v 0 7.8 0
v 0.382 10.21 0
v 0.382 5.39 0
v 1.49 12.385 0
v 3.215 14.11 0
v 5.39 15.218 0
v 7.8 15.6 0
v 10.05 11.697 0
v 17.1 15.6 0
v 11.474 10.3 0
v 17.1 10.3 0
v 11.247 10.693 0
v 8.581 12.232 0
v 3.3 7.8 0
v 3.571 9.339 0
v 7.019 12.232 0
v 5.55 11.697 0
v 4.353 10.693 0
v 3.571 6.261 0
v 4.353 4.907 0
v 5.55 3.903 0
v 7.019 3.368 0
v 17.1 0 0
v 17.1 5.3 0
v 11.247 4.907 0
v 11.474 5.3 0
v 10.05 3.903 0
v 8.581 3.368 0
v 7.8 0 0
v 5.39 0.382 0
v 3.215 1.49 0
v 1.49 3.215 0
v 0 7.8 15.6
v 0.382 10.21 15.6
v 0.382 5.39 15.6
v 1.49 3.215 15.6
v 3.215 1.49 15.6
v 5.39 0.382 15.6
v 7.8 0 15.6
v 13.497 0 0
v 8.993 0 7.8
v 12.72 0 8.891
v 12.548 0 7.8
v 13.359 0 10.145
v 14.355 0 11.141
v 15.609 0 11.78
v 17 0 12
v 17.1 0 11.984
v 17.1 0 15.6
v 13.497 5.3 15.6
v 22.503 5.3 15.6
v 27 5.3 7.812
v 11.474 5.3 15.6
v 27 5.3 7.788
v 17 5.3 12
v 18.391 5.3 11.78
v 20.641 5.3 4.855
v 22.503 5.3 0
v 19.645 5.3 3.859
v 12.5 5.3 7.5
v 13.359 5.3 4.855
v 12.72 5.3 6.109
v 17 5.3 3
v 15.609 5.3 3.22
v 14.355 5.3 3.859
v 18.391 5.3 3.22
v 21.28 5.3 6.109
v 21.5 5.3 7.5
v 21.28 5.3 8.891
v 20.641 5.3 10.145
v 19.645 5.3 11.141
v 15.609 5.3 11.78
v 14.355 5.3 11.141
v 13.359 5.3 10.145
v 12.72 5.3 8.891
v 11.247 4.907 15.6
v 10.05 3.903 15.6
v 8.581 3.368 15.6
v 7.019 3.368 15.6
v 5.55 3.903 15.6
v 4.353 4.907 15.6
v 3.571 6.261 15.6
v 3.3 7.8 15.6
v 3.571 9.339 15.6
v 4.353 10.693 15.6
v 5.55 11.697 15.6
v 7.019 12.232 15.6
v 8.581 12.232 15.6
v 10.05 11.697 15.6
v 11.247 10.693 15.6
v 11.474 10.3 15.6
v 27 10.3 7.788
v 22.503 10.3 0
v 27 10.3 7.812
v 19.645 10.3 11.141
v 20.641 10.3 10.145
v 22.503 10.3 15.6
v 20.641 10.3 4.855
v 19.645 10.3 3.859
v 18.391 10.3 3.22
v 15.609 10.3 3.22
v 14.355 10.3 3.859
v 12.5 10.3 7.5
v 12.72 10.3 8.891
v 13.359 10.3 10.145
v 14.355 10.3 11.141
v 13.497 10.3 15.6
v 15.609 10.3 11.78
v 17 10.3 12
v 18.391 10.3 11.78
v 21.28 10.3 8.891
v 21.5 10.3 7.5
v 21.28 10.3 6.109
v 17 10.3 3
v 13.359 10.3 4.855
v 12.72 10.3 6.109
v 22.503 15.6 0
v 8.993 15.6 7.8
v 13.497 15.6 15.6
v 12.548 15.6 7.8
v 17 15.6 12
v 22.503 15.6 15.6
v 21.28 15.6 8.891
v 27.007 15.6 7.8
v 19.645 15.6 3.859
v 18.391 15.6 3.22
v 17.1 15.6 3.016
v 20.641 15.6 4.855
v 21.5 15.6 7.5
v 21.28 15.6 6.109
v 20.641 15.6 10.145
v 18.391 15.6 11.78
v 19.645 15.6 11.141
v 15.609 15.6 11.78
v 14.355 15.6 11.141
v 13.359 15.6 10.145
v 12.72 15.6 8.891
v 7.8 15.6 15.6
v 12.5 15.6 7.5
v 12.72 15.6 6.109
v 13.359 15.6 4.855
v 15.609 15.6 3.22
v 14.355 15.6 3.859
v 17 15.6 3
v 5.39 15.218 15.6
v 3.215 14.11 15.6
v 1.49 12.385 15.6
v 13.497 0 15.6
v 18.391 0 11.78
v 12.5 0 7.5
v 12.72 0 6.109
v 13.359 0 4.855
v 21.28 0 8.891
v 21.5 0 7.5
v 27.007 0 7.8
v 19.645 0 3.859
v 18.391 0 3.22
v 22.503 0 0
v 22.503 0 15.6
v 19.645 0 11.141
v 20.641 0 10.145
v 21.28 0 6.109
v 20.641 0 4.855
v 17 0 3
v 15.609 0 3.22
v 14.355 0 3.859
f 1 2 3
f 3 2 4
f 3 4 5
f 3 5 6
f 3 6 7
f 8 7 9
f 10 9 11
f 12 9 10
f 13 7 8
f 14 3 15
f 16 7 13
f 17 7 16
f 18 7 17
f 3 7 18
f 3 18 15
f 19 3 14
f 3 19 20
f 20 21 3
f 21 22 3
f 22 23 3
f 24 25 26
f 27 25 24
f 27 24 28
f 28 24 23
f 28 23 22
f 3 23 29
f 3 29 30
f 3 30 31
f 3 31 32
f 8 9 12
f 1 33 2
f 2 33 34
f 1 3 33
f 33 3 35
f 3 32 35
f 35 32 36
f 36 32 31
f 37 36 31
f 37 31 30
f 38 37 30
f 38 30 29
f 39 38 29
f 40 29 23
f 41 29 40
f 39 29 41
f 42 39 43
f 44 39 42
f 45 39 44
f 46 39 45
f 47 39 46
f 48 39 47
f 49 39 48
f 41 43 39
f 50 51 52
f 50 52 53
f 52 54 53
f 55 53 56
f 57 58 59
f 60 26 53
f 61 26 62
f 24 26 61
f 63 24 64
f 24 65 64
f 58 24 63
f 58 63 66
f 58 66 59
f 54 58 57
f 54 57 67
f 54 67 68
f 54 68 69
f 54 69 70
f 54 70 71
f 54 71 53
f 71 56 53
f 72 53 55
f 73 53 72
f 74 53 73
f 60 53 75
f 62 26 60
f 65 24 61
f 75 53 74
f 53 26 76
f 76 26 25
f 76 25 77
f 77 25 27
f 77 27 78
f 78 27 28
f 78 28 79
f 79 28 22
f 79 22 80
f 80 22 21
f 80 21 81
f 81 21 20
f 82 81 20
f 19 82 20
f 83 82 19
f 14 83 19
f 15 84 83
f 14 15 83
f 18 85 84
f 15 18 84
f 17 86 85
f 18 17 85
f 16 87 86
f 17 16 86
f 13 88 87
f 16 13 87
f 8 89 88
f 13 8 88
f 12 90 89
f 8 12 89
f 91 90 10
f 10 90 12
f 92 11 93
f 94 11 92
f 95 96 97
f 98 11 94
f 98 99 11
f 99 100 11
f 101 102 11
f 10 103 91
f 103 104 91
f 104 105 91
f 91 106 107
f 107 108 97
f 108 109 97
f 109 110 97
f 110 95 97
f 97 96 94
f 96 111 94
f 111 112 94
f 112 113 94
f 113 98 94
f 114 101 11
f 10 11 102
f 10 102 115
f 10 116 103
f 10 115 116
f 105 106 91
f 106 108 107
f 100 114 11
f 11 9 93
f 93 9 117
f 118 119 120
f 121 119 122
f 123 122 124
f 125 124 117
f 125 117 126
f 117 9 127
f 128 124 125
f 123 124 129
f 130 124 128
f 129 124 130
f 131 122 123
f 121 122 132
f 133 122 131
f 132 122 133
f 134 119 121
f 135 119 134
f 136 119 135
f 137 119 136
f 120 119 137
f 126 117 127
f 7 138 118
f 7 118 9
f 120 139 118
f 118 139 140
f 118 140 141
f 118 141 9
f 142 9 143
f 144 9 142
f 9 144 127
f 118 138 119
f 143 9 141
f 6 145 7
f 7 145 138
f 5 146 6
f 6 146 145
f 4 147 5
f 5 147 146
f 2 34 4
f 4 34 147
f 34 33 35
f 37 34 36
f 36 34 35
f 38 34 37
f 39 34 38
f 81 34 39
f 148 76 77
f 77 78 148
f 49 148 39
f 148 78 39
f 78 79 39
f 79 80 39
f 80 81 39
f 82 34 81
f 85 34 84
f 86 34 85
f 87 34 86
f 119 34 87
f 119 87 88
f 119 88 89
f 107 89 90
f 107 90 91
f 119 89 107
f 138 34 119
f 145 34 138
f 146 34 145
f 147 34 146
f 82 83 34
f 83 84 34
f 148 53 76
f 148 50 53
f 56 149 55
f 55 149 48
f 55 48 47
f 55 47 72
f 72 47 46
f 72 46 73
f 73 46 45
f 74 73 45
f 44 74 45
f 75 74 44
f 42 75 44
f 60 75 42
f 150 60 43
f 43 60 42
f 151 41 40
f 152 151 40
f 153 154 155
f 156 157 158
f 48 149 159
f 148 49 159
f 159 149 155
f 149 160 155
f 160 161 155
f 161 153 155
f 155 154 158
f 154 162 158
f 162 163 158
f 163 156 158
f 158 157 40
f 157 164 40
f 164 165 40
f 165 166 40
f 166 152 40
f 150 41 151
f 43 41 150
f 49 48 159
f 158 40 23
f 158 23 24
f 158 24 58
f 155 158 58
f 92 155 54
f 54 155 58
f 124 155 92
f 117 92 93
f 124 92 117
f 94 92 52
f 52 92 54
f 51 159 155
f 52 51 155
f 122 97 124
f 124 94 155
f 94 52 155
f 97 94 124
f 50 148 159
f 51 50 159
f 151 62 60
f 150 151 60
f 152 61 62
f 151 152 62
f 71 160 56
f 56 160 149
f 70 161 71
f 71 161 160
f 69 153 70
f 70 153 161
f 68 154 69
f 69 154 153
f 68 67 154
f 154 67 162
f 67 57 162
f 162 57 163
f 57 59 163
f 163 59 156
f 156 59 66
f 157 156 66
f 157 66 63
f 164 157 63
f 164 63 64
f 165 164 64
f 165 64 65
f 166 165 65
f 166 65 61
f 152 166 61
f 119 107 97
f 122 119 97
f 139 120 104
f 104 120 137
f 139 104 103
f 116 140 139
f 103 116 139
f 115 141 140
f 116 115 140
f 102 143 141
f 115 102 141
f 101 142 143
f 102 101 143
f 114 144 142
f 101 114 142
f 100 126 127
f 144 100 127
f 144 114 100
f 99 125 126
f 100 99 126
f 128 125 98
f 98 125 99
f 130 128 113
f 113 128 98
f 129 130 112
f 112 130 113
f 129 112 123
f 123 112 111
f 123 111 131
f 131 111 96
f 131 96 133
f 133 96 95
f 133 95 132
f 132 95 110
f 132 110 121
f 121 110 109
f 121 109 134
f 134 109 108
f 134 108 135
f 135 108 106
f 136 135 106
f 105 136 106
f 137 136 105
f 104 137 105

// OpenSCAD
// file: functions.scad
// PRUSA Mendel  
// Functions used in many files
// GNU GPL v2
// Josef Průša
// josefprusa@me.com
// prusadjs.cz
// http://www.reprap.org/wiki/Prusa_Mendel
// http://github.com/prusajr/PrusaMendel

module nut(d,h,horizontal=true){
cornerdiameter =  (d / 2) / cos (180 / 6);
cylinder(h = h, r = cornerdiameter, $fn = 6);
if(horizontal){
for(i = [1:6]){
	rotate([0,0,60*i]) translate([-cornerdiameter-0.2,0,0]) rotate([0,0,-45]) cube(size = [2,2,h]);
}}
}

// By nophead
module polyhole(d,h) {
    n = max(round(2 * d),3);
    rotate([0,0,180])
        cylinder(h = h, r = (d / 2) / cos (180 / n), $fn = n);
}




module roundcorner(diameter){
	difference(){
		cube(size = [diameter,diameter,99], center = false);
		translate(v = [diameter, diameter, 0]) cylinder(h = 100, r=diameter, center=true);
	}
}
// file: metric.scad
// PRUSA Mendel  
// Default metric sizes
// GNU GPL v3
// Josef Průša
// josefprusa@me.com
// prusadjs.cz
// http://www.reprap.org/wiki/Prusa_Mendel
// http://github.com/prusajr/PrusaMendel

// DONT CHANGE THIS FILE! ALTER VALUES IN CONFIGURATION.SCAD INSTEAD

// RODS

threaded_rod_diameter = 8.7;
threaded_rod_diameter_horizontal = 8.7;
smooth_bar_diameter = 8;
smooth_bar_diameter_horizontal = 8.5;

// Nuts and bolts

m8_diameter = 9;
m8_nut_diameter = 14.1;

m4_diameter = 4.5;
m4_nut_diameter = 9;

m3_diameter = 3.6;
m3_nut_diameter = 5.5;
m3_nut_diameter_horizontal = 6.1;

// Bushing holder

bushing_core_diameter = smooth_bar_diameter;
bushing_material_thickness = 1;

// Motors

motor_shaft = 5.5;
// file: configuration.scad
// PRUSA Mendel  
// Configuration file
// GNU GPL v3
// Josef Průša
// josefprusa@me.com
// prusadjs.cz
// http://www.reprap.org/wiki/Prusa_Mendel
// http://github.com/prusajr/PrusaMendel

// PLEASE SELECT ONE OF THE CONFIGURATIONS BELOW
// BY UN-COMMENTING IT

// Uncomment for metric settings
// METRIC METRIC METRIC METRIC METRIC METRIC METRIC METRIC 

include <metric.scad>;

// CUSTOM CUSTOM CUSTOM CUSTOM CUSTOM CUSTOM CUSTOM CUSTOM CUSTOM

thin_wall = 3;

// LM8UU
linear = true;


// CHANGE ONLY THE STUFF YOU KNOW
// IT WILL REPLACE DEFAULT SETTING

// RODS

// threaded_rod_diameter = 0;
// threaded_rod_diameter_horizontal = 0;
// smooth_bar_díameter = 0;
// smooth_bar_díameter_horizontal = 0;

// Nuts and bolts

// m8_diameter = 0;
// m8_nut_diameter = 0;

// m4_diameter = 0;
// m4_nut_diameter = 0;

// m3_diameter = 0;
// m3_nut_diameter = 0;

// Bushing holder

// bushing_core_diameter = smooth_bar_díameter;
// bushing_material_thickness = 0;


///counted stuff
m3_nut_diameter_bigger = ((m3_nut_diameter  / 2) / cos (180 / 6))*2;

// functions 
include <functions.scad>
// main file
// PRUSA Mendel  
// Bar clamp
// Used for joining 8mm rods
// GNU GPL v3
// Josef Průša
// josefprusa@me.com
// prusadjs.cz
// http://www.reprap.org/wiki/Prusa_Mendel
// http://github.com/prusajr/PrusaMendel

include <configuration.scad>

/**
 * @id bar-clamp
 * @name Bar clamp
 * @category Printed
 * @using 2 m8nut
 * @using 2 m8washer
 */ 

module barclamp(){
outer_diameter = m8_diameter/2+3.3;

difference(){
	union(){
		
		translate([outer_diameter, outer_diameter, 0])cylinder(h =outer_diameter*2, r = outer_diameter, $fn = 20);
		translate([outer_diameter, 0, 0])cube([outer_diameter+1.5,outer_diameter*2,outer_diameter*2]);
		translate([18, 2*outer_diameter, outer_diameter])rotate([90, 0, 0]) rotate([00, 0, 0]) nut(outer_diameter*2,outer_diameter*2,false);
	}


	translate([18, outer_diameter, 9])cube([18,05,20], center=true);
	translate([outer_diameter, outer_diameter, -1]) #cylinder(h =20, r = m8_diameter/2, $fn = 18);
	translate([17, 17, 7.5]) rotate([90, 0, 0]) #cylinder(h =20, r = m8_diameter/2, $fn = 20);
}
}
barclamp();
